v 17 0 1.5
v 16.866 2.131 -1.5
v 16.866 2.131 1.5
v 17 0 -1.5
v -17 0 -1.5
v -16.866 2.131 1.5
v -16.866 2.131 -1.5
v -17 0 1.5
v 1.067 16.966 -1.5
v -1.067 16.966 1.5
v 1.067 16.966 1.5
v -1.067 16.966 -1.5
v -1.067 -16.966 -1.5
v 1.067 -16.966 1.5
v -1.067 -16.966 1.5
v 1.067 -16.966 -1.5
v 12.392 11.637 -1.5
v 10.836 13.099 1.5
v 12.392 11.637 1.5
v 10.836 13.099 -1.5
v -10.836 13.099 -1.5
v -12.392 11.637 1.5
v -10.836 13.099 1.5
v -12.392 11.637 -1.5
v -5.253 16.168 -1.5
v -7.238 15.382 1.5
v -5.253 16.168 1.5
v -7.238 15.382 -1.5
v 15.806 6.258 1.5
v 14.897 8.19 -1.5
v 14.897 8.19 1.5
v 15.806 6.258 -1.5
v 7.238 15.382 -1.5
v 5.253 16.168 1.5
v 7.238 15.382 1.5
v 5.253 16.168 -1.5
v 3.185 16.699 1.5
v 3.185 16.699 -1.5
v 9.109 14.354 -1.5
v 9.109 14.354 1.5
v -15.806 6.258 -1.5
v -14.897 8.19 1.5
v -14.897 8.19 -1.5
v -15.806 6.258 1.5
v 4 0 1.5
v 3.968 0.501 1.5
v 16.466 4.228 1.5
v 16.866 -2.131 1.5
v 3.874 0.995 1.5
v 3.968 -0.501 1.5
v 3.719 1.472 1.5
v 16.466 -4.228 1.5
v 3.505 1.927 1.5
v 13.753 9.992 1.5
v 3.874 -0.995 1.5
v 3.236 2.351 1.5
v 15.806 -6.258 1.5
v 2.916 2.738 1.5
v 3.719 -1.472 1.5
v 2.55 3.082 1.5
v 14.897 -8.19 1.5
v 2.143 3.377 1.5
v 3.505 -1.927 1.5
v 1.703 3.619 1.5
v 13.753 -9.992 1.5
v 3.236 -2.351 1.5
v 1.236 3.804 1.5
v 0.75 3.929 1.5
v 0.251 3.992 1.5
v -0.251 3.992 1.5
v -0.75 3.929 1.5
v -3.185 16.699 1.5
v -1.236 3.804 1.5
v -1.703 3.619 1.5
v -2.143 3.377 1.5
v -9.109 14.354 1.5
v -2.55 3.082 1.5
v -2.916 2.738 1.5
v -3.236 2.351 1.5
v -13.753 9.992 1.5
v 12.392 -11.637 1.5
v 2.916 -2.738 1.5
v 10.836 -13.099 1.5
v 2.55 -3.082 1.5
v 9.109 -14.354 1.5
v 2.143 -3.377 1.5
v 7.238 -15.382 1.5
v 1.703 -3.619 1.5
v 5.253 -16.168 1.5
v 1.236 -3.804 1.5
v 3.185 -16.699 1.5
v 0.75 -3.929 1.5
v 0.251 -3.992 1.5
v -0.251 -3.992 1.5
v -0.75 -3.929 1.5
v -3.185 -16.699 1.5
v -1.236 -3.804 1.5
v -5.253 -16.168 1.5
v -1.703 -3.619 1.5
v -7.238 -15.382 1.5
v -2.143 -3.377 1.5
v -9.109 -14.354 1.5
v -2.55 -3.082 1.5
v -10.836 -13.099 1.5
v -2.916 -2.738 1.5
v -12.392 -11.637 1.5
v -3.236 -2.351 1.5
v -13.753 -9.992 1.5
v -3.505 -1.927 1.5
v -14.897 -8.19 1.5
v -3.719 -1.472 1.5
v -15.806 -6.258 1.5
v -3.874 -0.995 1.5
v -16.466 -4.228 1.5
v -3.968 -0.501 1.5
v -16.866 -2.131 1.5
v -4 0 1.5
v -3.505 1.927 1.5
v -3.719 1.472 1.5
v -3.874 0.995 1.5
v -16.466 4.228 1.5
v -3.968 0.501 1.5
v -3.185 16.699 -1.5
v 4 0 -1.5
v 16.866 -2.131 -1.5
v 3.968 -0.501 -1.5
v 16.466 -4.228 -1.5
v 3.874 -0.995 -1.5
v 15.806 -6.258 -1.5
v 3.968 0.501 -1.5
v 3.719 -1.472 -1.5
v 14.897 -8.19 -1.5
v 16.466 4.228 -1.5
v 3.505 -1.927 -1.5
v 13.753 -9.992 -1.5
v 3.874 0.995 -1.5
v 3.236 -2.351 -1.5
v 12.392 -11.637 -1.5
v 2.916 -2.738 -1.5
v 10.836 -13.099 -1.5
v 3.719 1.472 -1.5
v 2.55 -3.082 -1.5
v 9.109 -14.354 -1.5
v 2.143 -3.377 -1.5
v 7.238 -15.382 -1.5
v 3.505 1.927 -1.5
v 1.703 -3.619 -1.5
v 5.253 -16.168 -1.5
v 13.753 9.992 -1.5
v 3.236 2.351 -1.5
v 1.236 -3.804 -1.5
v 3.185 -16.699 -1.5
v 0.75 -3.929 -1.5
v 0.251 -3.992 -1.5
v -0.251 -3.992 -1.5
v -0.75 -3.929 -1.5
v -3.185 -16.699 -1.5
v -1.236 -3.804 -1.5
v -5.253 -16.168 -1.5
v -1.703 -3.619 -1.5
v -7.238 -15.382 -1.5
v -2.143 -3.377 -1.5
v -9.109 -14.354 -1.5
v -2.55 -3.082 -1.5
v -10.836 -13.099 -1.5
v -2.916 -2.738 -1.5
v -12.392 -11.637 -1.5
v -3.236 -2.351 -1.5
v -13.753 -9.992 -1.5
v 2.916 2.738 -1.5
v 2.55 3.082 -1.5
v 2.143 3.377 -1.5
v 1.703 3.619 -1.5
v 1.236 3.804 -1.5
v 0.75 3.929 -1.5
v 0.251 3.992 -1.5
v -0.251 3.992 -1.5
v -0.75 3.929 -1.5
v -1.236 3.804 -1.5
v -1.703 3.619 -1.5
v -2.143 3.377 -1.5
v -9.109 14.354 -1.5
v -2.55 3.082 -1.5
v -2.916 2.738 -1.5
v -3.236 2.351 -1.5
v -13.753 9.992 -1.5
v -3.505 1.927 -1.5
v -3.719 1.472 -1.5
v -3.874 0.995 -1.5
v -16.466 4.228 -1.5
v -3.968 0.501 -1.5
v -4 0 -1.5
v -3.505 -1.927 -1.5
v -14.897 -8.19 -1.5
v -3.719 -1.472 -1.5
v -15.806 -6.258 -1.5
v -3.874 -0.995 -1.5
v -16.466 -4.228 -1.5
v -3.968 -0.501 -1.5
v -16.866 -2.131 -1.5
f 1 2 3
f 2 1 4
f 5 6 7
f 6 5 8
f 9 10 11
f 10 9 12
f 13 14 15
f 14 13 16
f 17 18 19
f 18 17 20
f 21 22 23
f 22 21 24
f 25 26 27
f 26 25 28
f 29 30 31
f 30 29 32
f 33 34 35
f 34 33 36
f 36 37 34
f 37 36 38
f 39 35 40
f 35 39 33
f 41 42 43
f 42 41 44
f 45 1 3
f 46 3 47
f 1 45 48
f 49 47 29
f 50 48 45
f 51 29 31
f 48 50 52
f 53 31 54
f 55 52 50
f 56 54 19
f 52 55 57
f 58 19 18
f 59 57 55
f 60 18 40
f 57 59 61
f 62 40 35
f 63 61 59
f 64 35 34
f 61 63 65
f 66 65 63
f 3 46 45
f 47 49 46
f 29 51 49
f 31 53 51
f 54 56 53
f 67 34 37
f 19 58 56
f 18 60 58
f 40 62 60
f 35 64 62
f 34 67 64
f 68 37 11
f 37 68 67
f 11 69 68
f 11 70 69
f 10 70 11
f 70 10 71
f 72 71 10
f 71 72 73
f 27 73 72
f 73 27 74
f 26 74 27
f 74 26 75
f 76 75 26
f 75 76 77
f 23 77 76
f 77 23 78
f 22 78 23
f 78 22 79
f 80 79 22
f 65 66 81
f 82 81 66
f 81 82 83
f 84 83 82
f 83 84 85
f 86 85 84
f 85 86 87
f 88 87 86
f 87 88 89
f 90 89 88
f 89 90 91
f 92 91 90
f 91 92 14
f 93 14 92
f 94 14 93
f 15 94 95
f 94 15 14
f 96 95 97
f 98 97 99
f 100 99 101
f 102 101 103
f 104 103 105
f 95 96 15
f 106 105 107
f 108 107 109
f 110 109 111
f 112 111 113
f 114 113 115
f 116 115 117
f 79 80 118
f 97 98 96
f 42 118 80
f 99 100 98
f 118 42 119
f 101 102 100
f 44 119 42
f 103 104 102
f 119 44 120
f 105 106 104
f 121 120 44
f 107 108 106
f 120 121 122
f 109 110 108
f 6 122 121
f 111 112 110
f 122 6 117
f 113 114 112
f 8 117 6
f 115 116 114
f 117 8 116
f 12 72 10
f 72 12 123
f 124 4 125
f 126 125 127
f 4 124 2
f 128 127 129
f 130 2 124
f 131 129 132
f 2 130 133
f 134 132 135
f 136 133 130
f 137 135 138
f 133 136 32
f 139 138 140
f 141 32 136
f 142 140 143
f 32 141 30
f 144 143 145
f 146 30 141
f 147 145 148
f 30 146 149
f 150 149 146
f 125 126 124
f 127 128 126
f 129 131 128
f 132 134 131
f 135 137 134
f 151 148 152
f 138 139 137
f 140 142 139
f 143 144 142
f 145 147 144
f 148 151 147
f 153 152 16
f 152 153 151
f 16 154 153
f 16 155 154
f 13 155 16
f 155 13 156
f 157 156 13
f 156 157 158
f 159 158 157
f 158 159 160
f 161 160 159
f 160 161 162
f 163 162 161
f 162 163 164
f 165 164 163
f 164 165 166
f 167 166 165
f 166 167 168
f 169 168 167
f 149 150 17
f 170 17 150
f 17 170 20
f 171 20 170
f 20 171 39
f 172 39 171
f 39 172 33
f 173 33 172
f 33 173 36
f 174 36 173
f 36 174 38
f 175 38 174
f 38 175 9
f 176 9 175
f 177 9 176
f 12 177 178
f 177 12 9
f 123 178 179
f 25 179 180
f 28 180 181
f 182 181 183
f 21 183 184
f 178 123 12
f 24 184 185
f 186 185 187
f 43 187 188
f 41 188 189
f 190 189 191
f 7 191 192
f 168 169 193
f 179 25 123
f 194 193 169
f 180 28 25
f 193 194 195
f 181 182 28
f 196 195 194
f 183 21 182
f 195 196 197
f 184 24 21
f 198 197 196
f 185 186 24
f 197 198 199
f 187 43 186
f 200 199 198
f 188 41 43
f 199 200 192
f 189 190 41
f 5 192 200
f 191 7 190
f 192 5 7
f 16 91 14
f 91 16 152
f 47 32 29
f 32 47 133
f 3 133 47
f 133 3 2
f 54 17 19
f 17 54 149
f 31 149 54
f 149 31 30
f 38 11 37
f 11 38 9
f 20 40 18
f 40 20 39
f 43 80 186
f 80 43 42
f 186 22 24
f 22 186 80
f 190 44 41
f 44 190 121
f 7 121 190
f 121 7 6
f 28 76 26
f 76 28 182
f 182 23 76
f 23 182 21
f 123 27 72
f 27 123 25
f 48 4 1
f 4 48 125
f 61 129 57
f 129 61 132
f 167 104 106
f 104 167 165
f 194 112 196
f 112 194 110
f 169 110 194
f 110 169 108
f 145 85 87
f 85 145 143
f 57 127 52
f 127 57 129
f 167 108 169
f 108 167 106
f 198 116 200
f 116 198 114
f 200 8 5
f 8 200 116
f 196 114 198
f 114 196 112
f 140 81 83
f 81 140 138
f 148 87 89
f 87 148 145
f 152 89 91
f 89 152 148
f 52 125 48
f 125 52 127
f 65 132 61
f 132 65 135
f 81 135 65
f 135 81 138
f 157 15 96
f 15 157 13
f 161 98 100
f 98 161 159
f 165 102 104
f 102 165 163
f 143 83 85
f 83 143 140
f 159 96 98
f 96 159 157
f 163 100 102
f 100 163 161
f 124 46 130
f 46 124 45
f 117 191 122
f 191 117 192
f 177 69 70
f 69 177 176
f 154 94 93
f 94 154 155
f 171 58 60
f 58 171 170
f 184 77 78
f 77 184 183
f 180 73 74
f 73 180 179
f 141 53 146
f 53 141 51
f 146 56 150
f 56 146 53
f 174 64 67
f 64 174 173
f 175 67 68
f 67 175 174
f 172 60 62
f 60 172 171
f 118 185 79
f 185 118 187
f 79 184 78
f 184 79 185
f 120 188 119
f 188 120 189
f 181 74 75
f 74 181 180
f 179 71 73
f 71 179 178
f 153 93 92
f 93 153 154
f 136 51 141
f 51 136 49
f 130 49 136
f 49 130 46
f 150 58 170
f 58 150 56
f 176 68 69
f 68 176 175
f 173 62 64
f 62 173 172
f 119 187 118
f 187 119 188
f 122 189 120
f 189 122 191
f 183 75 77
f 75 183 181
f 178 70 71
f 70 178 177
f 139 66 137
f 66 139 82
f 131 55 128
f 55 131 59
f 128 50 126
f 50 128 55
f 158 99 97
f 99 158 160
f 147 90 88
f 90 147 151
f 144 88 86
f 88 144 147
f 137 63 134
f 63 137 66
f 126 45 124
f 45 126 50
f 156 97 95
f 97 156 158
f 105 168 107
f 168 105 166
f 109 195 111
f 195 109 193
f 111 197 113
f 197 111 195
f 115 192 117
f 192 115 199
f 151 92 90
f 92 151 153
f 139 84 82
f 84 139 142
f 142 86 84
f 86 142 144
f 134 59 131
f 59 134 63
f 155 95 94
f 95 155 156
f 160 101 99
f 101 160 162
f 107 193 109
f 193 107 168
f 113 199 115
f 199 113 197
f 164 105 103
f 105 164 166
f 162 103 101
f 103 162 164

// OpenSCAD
$fn = 50;


difference() {
	union() {
		translate(v = [0, 0, -1.5000000000]) {
			cylinder(h = 3, r = 17.0000000000);
		}
	}
	union() {
		translate(v = [0, 0, -100.0000000000]) {
			cylinder(h = 200, r = 4);
		}
	}
}
